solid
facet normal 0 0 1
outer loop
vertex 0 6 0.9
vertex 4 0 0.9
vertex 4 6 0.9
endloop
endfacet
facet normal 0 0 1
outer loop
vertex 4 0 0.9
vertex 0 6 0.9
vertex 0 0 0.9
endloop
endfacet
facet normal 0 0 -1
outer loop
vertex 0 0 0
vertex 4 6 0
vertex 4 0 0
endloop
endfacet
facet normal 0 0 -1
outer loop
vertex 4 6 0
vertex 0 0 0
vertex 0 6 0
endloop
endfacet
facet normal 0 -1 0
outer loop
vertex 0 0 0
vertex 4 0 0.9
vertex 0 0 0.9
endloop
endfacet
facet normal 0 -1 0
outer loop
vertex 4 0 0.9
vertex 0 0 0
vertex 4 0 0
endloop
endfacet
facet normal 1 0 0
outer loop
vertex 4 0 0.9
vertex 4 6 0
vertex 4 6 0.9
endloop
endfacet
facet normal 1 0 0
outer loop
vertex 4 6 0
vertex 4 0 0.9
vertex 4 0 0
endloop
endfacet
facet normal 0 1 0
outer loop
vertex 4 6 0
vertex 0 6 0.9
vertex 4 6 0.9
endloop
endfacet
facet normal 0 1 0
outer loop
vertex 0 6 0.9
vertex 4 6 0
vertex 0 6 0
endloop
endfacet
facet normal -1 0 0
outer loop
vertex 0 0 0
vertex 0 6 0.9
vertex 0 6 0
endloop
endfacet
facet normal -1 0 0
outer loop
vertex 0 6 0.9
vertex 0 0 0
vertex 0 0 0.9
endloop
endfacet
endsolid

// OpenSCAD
/* Warning, this is a very basic generator with a lot of approximation 
input data : [VQFN, P8A, 4x6x0.9mm, 34, , A, C04-01037A]
generated by com.zoubworld.electronics.cad.model3d.Basic
Date : Sun Feb 15 10:50:49 CET 2026
*/

//body
color("black")
translate([0,0,0])
cube([4.0,6.0,0.9], center=false);
